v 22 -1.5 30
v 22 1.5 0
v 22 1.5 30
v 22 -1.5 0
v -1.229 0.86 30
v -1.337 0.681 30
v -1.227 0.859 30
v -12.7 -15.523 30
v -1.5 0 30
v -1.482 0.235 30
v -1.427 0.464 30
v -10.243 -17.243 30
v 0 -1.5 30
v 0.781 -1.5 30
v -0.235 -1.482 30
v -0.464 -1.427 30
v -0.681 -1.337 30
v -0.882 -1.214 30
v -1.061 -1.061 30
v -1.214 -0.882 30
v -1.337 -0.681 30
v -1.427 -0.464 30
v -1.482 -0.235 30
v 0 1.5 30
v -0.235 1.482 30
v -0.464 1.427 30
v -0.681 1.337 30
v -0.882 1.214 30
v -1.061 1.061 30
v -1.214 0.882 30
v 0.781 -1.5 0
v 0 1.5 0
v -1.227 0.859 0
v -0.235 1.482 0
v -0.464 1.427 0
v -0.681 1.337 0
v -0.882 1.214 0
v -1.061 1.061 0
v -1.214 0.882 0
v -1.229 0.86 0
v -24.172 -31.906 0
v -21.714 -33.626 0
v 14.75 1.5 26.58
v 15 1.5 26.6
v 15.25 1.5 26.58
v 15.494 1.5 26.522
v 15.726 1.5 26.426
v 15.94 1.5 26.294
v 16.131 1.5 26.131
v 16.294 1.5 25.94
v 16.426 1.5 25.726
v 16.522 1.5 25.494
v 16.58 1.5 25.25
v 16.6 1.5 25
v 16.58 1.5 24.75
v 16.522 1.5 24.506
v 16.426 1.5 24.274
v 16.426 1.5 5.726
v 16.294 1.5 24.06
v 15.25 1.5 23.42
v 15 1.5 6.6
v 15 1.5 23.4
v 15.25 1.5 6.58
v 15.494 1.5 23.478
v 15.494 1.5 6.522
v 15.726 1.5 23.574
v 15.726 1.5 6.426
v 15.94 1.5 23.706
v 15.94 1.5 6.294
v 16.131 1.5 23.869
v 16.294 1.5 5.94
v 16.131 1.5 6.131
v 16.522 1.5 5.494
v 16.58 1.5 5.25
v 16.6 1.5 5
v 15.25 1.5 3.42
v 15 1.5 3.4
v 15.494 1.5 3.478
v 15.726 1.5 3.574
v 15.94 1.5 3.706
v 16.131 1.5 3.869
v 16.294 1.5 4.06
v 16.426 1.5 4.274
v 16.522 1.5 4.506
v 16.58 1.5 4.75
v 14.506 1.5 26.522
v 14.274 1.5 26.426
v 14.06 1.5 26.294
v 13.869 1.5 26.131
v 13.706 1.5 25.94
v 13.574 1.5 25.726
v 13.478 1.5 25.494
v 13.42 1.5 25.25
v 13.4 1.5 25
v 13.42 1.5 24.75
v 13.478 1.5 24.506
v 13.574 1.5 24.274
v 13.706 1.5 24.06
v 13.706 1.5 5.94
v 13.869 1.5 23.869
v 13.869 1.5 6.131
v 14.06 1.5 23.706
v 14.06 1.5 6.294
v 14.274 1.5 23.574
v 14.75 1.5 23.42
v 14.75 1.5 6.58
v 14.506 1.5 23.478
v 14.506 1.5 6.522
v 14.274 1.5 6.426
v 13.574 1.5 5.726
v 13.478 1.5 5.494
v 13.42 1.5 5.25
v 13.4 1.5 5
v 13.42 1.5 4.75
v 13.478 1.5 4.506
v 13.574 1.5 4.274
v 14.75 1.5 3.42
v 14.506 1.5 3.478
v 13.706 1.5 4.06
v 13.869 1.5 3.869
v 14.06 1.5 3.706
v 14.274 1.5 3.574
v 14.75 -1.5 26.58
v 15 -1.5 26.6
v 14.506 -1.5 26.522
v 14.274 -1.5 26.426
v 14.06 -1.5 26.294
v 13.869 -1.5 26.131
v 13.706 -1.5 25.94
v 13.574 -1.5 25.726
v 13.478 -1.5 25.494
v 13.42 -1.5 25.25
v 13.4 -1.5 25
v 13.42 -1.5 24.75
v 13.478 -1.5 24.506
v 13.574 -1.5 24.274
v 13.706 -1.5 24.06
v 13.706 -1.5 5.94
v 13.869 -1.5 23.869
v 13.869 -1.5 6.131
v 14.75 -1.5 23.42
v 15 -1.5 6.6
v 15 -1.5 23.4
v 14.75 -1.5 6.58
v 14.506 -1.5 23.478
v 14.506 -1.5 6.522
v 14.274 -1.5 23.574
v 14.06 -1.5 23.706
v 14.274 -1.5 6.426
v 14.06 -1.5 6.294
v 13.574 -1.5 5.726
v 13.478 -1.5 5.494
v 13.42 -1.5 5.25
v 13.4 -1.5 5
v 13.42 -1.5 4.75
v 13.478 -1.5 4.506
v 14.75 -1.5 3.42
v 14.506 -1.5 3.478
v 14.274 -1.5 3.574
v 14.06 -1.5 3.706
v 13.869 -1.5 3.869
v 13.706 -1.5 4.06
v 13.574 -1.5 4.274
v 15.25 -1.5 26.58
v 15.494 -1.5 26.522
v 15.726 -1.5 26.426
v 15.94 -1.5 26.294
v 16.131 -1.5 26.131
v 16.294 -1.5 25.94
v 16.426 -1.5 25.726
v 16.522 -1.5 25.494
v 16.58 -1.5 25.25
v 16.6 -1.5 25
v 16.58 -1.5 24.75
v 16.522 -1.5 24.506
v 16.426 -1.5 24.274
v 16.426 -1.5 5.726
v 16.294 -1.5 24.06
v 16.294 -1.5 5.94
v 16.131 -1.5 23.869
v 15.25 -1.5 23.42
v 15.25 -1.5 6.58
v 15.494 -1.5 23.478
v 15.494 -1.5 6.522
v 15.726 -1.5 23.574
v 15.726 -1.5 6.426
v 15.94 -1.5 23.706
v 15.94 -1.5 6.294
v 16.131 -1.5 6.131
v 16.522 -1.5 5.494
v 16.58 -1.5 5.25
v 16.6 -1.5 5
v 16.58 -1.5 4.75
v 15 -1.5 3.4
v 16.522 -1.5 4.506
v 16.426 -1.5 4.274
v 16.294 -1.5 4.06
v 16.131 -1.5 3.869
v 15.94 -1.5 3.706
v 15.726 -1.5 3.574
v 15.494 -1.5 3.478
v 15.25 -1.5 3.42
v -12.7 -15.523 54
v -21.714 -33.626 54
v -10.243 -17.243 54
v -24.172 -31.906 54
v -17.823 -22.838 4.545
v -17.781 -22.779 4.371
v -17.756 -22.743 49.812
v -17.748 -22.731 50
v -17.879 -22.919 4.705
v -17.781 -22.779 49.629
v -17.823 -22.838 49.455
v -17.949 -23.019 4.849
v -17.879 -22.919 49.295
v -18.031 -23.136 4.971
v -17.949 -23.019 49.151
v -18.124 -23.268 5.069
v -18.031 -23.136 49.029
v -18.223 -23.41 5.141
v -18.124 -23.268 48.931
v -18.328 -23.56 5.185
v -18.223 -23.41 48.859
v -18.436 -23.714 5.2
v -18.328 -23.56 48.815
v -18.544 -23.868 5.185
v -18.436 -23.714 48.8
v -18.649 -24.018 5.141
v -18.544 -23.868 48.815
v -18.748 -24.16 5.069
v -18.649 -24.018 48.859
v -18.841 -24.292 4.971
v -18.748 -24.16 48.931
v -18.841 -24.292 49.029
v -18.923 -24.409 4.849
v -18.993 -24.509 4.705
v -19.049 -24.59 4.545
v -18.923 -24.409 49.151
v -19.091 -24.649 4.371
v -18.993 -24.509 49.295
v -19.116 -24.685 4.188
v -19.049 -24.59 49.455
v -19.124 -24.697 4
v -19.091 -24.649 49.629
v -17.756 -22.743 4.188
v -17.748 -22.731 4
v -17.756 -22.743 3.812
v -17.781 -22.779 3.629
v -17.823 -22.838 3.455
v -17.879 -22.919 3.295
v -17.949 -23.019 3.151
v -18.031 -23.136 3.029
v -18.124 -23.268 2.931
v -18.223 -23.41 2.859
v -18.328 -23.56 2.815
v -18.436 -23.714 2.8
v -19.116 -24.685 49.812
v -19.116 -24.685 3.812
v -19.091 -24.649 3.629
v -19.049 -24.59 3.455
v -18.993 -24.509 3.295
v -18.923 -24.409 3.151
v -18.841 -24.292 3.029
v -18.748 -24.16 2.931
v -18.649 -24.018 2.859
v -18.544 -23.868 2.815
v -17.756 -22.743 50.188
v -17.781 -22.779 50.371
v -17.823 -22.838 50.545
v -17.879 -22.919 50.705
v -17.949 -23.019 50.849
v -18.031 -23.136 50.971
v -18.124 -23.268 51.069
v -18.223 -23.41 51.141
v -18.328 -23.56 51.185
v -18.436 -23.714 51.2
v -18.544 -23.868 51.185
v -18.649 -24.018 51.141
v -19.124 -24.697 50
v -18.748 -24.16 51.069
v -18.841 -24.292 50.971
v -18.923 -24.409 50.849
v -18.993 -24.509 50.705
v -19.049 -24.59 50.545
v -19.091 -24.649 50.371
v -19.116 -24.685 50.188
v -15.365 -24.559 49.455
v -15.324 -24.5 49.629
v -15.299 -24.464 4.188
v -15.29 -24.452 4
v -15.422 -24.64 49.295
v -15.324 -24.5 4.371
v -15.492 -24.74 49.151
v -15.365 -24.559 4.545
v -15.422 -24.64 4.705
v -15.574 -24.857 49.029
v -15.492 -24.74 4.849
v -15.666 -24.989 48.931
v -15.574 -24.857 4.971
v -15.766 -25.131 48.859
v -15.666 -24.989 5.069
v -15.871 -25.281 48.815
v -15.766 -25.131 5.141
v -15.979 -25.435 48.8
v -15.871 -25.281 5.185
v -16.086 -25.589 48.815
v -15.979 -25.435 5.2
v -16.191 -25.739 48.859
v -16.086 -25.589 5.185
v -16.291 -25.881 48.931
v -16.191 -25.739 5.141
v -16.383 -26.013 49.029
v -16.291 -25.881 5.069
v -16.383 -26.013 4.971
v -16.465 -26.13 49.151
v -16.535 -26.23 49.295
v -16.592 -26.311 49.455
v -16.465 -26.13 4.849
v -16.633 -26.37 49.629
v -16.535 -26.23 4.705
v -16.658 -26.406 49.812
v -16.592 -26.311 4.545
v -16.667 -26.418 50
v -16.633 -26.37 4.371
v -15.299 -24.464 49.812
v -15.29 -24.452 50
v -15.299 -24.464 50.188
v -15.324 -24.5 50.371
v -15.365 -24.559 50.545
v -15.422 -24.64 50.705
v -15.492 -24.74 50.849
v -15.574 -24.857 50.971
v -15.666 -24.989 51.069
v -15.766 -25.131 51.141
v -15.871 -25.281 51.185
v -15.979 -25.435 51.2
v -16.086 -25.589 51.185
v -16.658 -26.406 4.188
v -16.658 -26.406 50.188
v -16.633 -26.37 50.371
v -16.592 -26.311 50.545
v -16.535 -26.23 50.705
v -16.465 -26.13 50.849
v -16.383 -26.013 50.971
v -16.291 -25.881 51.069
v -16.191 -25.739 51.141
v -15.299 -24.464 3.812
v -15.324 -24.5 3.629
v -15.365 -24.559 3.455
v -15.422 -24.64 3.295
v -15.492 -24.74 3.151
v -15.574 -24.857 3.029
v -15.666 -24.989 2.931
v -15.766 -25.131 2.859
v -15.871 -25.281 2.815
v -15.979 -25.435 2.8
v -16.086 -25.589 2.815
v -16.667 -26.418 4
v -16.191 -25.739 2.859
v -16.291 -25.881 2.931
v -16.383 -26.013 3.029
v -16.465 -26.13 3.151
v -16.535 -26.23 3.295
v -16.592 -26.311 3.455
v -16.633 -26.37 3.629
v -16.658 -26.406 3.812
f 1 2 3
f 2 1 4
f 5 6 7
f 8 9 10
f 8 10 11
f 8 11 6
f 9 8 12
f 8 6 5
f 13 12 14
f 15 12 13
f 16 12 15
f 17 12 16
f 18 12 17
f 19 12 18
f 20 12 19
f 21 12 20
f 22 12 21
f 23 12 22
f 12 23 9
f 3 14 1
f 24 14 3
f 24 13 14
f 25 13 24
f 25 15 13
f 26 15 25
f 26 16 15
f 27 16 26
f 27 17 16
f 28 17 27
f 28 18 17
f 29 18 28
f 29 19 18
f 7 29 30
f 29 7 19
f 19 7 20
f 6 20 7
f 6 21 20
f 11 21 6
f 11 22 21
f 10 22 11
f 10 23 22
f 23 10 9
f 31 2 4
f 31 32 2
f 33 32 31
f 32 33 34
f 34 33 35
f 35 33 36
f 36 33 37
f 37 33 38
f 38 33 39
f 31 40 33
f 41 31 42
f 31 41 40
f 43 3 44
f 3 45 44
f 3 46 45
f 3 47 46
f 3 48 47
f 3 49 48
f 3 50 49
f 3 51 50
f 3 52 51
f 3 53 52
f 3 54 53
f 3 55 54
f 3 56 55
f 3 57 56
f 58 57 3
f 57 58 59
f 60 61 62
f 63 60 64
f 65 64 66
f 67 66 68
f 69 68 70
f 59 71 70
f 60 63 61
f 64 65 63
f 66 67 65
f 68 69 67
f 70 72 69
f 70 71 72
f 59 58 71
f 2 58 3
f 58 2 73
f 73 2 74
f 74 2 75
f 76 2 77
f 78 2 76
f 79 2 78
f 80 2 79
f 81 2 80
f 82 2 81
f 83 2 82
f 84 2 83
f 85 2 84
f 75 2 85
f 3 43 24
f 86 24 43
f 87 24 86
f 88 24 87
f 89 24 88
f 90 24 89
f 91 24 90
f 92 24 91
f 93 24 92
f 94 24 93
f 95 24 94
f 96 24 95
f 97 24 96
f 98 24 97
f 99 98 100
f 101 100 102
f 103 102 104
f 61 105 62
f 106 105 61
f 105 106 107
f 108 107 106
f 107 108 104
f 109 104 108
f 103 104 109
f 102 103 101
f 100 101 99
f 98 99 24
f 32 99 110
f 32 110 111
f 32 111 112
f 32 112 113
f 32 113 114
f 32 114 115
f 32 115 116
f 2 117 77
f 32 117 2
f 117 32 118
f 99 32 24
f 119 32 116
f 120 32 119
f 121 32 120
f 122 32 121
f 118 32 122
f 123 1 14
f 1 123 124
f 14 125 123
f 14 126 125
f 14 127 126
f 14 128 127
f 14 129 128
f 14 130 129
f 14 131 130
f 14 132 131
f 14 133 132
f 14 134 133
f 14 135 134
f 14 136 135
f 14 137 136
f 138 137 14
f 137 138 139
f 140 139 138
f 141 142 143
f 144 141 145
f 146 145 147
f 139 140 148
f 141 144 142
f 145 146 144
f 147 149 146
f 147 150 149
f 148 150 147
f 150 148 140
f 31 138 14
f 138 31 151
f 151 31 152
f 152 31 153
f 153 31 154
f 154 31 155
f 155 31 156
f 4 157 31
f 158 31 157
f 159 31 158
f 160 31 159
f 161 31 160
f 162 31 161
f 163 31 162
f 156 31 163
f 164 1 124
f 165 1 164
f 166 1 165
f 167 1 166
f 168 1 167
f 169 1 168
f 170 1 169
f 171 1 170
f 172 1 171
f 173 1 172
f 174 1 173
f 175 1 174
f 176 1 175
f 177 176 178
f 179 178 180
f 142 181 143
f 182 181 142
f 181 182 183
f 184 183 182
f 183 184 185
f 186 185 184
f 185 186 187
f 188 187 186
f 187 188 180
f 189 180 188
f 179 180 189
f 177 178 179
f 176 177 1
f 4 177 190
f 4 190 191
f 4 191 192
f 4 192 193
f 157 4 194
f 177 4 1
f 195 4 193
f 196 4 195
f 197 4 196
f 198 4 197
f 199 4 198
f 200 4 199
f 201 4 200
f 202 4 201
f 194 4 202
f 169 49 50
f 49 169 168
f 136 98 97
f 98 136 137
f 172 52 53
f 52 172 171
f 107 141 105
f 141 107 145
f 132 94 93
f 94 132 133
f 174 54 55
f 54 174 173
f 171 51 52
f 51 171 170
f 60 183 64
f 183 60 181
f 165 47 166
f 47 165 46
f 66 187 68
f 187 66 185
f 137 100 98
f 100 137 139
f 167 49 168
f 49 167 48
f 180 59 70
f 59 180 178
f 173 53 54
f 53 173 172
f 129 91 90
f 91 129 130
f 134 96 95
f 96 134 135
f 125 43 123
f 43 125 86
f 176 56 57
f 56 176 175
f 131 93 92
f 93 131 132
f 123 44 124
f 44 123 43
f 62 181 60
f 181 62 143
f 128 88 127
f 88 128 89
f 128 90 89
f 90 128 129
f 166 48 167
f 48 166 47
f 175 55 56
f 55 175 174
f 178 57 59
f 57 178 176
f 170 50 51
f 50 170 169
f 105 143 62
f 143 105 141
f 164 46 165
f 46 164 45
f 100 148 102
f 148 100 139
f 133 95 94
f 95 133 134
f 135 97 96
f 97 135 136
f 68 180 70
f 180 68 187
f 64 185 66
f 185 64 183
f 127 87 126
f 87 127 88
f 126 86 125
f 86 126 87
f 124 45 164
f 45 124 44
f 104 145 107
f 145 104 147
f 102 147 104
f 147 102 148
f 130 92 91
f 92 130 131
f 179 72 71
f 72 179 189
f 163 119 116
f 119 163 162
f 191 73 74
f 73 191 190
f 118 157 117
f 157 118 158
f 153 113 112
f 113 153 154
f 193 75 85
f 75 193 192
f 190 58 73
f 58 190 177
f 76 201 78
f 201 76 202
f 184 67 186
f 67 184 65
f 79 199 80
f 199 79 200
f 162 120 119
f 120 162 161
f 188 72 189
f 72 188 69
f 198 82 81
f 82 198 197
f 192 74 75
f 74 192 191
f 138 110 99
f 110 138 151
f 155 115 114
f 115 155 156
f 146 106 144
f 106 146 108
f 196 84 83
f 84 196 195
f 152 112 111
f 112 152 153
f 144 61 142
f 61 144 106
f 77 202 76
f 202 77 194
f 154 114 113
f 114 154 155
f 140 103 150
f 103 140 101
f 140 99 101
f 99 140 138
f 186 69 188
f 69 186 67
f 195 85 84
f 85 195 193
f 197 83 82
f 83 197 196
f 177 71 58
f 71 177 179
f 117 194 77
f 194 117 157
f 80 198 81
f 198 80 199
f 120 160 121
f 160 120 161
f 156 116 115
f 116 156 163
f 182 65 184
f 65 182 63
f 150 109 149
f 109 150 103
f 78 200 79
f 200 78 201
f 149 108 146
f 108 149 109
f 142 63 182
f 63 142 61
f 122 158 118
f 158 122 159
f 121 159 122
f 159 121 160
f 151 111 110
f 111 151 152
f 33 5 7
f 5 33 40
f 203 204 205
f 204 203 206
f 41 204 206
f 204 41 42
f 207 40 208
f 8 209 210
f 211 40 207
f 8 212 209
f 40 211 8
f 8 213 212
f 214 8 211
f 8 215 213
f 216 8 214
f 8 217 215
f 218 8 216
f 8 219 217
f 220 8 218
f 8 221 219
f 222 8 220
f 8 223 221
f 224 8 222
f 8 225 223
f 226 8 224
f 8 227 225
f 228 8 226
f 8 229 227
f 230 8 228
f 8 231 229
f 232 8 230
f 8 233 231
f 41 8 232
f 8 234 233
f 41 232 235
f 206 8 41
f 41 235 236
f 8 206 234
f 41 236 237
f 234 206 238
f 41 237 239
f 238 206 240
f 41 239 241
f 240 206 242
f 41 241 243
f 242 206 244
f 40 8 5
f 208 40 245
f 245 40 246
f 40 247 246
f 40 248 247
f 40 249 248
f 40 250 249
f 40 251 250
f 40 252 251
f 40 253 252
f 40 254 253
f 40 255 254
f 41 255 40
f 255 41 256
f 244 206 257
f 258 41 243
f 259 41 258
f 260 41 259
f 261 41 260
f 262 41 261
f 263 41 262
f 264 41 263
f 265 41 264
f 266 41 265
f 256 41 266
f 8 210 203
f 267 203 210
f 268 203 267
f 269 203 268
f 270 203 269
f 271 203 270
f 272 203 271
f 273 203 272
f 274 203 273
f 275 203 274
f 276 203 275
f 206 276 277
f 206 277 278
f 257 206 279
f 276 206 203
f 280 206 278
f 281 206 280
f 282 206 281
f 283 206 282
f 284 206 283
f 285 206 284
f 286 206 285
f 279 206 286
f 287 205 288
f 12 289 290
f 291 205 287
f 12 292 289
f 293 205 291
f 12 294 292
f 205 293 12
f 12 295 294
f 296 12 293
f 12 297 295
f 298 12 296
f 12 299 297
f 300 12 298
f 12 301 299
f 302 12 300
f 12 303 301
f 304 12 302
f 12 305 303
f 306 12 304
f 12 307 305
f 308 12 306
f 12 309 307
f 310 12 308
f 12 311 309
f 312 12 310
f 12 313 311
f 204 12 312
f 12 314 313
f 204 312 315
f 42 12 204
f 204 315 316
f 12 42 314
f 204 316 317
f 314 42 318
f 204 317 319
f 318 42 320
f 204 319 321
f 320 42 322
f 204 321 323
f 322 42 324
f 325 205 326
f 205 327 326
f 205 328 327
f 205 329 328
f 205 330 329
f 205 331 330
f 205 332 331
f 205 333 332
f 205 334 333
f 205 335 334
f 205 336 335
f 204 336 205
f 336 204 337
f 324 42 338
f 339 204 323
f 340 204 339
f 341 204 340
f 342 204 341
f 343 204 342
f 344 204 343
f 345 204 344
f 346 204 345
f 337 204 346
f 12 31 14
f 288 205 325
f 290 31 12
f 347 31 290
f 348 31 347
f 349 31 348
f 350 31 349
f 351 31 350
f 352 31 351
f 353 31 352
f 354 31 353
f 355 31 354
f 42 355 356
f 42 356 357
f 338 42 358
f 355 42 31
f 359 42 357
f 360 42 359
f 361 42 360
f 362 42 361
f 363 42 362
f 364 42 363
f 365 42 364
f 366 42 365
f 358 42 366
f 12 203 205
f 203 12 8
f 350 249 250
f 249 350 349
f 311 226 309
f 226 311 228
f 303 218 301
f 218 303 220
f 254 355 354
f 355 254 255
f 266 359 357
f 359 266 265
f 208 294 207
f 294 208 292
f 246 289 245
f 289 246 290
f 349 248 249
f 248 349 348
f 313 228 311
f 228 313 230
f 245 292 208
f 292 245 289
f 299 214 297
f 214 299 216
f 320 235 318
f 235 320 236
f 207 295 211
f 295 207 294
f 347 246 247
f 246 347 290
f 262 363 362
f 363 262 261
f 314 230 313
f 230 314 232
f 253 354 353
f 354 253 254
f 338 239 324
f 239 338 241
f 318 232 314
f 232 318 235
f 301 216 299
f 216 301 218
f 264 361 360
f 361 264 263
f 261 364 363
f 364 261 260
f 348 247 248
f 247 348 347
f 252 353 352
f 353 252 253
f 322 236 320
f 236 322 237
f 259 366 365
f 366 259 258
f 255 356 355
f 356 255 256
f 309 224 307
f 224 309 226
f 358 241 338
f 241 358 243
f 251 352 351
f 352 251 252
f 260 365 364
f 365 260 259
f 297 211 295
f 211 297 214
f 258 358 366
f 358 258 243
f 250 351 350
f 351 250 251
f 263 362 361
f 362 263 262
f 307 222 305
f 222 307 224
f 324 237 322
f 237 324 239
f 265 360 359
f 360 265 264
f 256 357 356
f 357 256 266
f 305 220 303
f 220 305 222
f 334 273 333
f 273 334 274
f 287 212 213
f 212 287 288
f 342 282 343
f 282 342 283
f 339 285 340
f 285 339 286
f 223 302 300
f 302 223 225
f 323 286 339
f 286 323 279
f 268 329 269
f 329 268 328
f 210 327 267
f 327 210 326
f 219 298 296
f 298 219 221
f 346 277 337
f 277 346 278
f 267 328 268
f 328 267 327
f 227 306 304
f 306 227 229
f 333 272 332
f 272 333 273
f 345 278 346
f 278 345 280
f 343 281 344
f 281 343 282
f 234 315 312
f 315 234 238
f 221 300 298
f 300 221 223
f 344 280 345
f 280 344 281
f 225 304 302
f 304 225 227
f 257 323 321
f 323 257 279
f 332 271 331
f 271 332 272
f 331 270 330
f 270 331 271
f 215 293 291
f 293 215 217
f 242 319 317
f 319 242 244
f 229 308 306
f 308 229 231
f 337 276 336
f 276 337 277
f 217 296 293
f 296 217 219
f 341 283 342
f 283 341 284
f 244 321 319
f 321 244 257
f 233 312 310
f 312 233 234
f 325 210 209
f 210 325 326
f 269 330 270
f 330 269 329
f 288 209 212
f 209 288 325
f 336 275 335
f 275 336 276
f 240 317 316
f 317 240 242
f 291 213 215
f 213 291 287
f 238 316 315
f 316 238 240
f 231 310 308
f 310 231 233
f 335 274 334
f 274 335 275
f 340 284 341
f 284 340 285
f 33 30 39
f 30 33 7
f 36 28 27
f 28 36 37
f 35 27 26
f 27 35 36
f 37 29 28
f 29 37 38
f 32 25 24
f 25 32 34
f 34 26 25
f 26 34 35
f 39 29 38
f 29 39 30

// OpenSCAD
mountSideHt = 30;
sensorSideHt = 54;
holeSpacing = 46;

$fn=40;

difference() {
   translate([0,-1.5,0]) cube([22,3,mountSideHt]);
   translate([15,3, mountSideHt - 5]) rotate([90,0,0]) cylinder(d=3.2,h=10);
   translate([15,3, 5]) rotate([90,0,0]) cylinder(d=3.2,h=10);
}
rotate([0,0,55]) translate([-40,-1.5,0]) difference() {
   cube([40,3,sensorSideHt]);
   translate([20,-1,mountSideHt]) cube([21,5,sensorSideHt-mountSideHt+1]);
   translate([10,4, (sensorSideHt - holeSpacing)/2]) rotate([90,0,0]) cylinder(d=2.4,h=10);
   translate([10,4, holeSpacing + (sensorSideHt - holeSpacing)/2]) rotate([90,0,0]) cylinder(d=2.4,h=10);
   }
cylinder(d=3,h=mountSideHt);
